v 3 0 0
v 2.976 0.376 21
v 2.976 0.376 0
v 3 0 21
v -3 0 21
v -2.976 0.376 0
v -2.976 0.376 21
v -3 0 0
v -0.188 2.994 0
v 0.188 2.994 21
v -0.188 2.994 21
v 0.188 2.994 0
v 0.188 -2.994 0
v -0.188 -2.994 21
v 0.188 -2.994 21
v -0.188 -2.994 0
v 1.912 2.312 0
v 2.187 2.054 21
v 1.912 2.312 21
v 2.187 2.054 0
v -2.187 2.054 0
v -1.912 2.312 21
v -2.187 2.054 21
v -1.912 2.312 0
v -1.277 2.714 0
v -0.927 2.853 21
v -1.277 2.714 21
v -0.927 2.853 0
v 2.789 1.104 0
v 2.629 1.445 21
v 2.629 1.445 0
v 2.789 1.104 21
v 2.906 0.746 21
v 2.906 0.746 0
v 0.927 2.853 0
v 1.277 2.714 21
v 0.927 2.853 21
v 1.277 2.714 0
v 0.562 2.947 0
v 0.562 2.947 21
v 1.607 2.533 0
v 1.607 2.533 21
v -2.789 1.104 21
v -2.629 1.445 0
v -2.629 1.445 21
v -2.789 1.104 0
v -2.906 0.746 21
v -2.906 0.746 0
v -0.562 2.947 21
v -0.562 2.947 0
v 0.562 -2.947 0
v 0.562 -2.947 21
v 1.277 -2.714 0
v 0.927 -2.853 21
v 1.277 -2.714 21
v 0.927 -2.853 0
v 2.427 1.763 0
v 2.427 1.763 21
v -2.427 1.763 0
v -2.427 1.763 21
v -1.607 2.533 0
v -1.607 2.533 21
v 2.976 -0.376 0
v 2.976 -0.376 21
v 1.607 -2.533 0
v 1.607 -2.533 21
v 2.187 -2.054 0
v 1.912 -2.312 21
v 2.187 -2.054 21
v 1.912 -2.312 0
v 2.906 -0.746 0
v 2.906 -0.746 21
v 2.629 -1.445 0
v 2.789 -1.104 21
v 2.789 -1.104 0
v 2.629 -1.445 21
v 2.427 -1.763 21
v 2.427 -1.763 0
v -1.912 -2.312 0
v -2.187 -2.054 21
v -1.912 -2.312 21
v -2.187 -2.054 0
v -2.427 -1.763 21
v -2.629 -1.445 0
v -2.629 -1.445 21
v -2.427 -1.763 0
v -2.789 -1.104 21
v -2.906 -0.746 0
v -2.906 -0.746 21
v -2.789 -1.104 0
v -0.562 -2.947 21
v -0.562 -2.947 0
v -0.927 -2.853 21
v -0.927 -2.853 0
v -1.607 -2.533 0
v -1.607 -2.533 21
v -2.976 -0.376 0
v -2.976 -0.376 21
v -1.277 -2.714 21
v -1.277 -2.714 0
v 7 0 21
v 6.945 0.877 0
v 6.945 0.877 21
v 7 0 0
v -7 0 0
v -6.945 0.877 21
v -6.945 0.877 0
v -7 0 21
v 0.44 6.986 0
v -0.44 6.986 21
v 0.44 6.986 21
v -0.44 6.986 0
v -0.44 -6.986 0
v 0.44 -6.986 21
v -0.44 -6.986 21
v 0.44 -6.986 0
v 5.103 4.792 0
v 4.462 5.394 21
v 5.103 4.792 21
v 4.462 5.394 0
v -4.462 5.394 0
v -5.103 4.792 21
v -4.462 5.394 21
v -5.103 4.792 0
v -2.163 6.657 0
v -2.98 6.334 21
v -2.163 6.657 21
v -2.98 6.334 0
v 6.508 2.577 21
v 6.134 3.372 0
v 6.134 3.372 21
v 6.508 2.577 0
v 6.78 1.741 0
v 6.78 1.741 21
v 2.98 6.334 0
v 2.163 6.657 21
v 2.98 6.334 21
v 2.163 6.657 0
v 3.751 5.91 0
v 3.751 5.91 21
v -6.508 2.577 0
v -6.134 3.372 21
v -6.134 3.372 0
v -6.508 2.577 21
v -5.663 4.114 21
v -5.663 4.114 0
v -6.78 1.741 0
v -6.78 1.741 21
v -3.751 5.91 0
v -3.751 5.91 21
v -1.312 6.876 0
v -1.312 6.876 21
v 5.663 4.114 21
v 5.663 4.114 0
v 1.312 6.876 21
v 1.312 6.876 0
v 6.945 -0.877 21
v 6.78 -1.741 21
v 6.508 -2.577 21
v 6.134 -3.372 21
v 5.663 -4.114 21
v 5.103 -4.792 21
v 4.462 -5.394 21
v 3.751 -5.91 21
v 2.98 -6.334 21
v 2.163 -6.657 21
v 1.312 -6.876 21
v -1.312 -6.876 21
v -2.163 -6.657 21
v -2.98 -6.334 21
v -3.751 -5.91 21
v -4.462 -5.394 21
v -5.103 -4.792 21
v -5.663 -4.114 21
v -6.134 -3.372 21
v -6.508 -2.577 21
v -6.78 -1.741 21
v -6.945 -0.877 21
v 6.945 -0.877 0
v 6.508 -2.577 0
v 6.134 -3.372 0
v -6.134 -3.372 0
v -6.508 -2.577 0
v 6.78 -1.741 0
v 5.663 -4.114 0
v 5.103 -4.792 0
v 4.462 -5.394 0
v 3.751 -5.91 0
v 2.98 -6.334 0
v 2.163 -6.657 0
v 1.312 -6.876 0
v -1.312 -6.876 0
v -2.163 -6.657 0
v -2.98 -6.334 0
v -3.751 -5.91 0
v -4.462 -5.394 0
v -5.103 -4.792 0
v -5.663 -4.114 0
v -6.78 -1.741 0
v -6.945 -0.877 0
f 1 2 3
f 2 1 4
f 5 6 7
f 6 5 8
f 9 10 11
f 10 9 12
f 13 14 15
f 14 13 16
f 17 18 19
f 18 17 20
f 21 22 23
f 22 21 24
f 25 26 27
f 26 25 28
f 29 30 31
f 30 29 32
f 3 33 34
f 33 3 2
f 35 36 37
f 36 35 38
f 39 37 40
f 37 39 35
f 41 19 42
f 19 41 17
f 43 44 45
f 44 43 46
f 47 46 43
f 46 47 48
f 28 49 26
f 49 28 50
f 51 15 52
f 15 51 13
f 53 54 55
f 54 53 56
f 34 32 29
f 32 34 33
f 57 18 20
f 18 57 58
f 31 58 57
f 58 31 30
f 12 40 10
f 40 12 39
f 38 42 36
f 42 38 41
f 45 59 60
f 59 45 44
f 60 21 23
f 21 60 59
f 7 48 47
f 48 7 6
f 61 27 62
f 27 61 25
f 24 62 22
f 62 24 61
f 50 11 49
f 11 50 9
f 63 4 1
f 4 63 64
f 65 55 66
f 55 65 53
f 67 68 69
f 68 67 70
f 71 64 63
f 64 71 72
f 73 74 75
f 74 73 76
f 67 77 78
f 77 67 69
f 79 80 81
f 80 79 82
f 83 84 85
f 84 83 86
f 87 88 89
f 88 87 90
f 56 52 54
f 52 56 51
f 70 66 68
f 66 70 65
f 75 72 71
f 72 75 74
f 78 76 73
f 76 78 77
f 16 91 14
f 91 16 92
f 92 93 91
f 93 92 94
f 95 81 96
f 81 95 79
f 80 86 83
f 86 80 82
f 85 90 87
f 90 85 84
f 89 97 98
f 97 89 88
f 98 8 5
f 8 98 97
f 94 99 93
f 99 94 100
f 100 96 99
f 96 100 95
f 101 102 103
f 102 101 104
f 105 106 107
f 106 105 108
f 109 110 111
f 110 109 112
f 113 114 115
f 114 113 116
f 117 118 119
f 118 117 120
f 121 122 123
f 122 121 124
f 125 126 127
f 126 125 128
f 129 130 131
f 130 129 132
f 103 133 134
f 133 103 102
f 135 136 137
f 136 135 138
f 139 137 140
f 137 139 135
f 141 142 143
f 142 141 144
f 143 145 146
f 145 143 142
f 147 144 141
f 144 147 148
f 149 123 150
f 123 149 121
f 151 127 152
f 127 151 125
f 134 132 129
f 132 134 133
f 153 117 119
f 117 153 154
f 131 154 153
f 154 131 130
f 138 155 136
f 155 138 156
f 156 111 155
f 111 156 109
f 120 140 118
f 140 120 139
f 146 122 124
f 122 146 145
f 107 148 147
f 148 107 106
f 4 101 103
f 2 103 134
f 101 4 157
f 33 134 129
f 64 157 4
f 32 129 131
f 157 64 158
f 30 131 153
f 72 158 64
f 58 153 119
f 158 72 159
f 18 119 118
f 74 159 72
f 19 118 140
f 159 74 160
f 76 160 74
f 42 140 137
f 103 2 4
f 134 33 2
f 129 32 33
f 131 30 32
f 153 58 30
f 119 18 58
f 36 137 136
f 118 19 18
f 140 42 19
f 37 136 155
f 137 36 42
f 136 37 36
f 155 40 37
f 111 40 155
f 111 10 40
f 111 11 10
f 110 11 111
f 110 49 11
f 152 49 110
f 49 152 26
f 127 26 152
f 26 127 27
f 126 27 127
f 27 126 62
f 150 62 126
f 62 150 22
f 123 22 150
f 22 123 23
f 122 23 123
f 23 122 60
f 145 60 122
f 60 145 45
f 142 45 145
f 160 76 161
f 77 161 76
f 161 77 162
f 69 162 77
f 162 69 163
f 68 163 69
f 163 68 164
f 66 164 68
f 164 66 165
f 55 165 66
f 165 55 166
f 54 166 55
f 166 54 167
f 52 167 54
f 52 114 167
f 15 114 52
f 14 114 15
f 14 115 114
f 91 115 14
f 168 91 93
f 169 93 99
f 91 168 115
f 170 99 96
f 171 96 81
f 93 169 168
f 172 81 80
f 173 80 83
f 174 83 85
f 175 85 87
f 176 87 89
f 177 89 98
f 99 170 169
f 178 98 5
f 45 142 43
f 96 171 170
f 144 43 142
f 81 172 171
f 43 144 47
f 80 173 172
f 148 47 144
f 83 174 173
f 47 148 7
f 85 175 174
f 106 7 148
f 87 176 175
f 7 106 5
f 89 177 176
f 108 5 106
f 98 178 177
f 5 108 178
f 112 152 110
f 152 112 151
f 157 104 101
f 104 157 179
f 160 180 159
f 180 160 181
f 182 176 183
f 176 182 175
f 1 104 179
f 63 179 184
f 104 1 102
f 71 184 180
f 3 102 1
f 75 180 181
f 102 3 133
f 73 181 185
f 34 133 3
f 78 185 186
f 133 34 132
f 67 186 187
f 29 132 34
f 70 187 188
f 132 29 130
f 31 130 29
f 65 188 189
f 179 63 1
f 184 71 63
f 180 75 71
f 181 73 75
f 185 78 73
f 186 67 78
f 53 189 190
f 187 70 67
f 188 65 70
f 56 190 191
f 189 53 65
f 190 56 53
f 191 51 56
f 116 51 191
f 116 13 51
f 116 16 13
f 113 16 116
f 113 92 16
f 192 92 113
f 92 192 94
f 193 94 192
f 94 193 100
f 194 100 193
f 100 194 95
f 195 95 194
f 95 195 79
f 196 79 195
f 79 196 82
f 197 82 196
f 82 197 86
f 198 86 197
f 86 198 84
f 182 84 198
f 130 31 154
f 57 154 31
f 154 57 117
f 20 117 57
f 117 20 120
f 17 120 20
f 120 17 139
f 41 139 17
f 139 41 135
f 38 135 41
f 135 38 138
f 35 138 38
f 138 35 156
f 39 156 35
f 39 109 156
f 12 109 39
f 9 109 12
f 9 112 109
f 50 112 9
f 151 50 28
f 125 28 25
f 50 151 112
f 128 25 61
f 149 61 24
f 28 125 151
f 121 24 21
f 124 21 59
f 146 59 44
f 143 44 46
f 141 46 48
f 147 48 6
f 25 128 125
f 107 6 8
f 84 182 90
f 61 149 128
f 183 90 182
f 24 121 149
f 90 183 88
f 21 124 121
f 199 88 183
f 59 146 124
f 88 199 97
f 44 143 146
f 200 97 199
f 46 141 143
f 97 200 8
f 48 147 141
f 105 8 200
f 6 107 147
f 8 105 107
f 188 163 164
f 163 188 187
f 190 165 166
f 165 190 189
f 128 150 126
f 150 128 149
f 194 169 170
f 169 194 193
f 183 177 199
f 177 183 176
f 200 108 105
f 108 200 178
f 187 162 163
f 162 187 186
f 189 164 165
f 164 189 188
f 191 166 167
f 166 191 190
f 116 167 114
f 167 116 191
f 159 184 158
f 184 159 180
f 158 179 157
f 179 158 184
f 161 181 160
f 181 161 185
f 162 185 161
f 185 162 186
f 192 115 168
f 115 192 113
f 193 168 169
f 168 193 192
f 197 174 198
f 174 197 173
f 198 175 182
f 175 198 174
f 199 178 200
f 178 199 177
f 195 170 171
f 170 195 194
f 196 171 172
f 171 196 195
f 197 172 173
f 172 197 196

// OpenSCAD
$fn = 50;


difference() {
	union() {
		translate(v = [0, 0, 0]) {
			rotate(a = [0, 0, 0]) {
				cylinder(h = 21, r = 7.0000000000);
			}
		}
	}
	union() {
		translate(v = [0.0000000000, 0.0000000000, 0]) {
			rotate(a = [0, 0, 0]) {
				translate(v = [0, 0, -50]) {
					rotate(a = [0, 0, 0]) {
						cylinder(h = 100, r = 3.0000000000);
					}
				}
			}
		}
		translate(v = [0.0000000000, 0.0000000000, 0]) {
			rotate(a = [0, 0, 0]) {
				translate(v = [0, 0, -50]) {
					rotate(a = [0, 0, 0]) {
						cylinder(h = 100, r = 1.5000000000);
					}
				}
			}
		}
	}
}
